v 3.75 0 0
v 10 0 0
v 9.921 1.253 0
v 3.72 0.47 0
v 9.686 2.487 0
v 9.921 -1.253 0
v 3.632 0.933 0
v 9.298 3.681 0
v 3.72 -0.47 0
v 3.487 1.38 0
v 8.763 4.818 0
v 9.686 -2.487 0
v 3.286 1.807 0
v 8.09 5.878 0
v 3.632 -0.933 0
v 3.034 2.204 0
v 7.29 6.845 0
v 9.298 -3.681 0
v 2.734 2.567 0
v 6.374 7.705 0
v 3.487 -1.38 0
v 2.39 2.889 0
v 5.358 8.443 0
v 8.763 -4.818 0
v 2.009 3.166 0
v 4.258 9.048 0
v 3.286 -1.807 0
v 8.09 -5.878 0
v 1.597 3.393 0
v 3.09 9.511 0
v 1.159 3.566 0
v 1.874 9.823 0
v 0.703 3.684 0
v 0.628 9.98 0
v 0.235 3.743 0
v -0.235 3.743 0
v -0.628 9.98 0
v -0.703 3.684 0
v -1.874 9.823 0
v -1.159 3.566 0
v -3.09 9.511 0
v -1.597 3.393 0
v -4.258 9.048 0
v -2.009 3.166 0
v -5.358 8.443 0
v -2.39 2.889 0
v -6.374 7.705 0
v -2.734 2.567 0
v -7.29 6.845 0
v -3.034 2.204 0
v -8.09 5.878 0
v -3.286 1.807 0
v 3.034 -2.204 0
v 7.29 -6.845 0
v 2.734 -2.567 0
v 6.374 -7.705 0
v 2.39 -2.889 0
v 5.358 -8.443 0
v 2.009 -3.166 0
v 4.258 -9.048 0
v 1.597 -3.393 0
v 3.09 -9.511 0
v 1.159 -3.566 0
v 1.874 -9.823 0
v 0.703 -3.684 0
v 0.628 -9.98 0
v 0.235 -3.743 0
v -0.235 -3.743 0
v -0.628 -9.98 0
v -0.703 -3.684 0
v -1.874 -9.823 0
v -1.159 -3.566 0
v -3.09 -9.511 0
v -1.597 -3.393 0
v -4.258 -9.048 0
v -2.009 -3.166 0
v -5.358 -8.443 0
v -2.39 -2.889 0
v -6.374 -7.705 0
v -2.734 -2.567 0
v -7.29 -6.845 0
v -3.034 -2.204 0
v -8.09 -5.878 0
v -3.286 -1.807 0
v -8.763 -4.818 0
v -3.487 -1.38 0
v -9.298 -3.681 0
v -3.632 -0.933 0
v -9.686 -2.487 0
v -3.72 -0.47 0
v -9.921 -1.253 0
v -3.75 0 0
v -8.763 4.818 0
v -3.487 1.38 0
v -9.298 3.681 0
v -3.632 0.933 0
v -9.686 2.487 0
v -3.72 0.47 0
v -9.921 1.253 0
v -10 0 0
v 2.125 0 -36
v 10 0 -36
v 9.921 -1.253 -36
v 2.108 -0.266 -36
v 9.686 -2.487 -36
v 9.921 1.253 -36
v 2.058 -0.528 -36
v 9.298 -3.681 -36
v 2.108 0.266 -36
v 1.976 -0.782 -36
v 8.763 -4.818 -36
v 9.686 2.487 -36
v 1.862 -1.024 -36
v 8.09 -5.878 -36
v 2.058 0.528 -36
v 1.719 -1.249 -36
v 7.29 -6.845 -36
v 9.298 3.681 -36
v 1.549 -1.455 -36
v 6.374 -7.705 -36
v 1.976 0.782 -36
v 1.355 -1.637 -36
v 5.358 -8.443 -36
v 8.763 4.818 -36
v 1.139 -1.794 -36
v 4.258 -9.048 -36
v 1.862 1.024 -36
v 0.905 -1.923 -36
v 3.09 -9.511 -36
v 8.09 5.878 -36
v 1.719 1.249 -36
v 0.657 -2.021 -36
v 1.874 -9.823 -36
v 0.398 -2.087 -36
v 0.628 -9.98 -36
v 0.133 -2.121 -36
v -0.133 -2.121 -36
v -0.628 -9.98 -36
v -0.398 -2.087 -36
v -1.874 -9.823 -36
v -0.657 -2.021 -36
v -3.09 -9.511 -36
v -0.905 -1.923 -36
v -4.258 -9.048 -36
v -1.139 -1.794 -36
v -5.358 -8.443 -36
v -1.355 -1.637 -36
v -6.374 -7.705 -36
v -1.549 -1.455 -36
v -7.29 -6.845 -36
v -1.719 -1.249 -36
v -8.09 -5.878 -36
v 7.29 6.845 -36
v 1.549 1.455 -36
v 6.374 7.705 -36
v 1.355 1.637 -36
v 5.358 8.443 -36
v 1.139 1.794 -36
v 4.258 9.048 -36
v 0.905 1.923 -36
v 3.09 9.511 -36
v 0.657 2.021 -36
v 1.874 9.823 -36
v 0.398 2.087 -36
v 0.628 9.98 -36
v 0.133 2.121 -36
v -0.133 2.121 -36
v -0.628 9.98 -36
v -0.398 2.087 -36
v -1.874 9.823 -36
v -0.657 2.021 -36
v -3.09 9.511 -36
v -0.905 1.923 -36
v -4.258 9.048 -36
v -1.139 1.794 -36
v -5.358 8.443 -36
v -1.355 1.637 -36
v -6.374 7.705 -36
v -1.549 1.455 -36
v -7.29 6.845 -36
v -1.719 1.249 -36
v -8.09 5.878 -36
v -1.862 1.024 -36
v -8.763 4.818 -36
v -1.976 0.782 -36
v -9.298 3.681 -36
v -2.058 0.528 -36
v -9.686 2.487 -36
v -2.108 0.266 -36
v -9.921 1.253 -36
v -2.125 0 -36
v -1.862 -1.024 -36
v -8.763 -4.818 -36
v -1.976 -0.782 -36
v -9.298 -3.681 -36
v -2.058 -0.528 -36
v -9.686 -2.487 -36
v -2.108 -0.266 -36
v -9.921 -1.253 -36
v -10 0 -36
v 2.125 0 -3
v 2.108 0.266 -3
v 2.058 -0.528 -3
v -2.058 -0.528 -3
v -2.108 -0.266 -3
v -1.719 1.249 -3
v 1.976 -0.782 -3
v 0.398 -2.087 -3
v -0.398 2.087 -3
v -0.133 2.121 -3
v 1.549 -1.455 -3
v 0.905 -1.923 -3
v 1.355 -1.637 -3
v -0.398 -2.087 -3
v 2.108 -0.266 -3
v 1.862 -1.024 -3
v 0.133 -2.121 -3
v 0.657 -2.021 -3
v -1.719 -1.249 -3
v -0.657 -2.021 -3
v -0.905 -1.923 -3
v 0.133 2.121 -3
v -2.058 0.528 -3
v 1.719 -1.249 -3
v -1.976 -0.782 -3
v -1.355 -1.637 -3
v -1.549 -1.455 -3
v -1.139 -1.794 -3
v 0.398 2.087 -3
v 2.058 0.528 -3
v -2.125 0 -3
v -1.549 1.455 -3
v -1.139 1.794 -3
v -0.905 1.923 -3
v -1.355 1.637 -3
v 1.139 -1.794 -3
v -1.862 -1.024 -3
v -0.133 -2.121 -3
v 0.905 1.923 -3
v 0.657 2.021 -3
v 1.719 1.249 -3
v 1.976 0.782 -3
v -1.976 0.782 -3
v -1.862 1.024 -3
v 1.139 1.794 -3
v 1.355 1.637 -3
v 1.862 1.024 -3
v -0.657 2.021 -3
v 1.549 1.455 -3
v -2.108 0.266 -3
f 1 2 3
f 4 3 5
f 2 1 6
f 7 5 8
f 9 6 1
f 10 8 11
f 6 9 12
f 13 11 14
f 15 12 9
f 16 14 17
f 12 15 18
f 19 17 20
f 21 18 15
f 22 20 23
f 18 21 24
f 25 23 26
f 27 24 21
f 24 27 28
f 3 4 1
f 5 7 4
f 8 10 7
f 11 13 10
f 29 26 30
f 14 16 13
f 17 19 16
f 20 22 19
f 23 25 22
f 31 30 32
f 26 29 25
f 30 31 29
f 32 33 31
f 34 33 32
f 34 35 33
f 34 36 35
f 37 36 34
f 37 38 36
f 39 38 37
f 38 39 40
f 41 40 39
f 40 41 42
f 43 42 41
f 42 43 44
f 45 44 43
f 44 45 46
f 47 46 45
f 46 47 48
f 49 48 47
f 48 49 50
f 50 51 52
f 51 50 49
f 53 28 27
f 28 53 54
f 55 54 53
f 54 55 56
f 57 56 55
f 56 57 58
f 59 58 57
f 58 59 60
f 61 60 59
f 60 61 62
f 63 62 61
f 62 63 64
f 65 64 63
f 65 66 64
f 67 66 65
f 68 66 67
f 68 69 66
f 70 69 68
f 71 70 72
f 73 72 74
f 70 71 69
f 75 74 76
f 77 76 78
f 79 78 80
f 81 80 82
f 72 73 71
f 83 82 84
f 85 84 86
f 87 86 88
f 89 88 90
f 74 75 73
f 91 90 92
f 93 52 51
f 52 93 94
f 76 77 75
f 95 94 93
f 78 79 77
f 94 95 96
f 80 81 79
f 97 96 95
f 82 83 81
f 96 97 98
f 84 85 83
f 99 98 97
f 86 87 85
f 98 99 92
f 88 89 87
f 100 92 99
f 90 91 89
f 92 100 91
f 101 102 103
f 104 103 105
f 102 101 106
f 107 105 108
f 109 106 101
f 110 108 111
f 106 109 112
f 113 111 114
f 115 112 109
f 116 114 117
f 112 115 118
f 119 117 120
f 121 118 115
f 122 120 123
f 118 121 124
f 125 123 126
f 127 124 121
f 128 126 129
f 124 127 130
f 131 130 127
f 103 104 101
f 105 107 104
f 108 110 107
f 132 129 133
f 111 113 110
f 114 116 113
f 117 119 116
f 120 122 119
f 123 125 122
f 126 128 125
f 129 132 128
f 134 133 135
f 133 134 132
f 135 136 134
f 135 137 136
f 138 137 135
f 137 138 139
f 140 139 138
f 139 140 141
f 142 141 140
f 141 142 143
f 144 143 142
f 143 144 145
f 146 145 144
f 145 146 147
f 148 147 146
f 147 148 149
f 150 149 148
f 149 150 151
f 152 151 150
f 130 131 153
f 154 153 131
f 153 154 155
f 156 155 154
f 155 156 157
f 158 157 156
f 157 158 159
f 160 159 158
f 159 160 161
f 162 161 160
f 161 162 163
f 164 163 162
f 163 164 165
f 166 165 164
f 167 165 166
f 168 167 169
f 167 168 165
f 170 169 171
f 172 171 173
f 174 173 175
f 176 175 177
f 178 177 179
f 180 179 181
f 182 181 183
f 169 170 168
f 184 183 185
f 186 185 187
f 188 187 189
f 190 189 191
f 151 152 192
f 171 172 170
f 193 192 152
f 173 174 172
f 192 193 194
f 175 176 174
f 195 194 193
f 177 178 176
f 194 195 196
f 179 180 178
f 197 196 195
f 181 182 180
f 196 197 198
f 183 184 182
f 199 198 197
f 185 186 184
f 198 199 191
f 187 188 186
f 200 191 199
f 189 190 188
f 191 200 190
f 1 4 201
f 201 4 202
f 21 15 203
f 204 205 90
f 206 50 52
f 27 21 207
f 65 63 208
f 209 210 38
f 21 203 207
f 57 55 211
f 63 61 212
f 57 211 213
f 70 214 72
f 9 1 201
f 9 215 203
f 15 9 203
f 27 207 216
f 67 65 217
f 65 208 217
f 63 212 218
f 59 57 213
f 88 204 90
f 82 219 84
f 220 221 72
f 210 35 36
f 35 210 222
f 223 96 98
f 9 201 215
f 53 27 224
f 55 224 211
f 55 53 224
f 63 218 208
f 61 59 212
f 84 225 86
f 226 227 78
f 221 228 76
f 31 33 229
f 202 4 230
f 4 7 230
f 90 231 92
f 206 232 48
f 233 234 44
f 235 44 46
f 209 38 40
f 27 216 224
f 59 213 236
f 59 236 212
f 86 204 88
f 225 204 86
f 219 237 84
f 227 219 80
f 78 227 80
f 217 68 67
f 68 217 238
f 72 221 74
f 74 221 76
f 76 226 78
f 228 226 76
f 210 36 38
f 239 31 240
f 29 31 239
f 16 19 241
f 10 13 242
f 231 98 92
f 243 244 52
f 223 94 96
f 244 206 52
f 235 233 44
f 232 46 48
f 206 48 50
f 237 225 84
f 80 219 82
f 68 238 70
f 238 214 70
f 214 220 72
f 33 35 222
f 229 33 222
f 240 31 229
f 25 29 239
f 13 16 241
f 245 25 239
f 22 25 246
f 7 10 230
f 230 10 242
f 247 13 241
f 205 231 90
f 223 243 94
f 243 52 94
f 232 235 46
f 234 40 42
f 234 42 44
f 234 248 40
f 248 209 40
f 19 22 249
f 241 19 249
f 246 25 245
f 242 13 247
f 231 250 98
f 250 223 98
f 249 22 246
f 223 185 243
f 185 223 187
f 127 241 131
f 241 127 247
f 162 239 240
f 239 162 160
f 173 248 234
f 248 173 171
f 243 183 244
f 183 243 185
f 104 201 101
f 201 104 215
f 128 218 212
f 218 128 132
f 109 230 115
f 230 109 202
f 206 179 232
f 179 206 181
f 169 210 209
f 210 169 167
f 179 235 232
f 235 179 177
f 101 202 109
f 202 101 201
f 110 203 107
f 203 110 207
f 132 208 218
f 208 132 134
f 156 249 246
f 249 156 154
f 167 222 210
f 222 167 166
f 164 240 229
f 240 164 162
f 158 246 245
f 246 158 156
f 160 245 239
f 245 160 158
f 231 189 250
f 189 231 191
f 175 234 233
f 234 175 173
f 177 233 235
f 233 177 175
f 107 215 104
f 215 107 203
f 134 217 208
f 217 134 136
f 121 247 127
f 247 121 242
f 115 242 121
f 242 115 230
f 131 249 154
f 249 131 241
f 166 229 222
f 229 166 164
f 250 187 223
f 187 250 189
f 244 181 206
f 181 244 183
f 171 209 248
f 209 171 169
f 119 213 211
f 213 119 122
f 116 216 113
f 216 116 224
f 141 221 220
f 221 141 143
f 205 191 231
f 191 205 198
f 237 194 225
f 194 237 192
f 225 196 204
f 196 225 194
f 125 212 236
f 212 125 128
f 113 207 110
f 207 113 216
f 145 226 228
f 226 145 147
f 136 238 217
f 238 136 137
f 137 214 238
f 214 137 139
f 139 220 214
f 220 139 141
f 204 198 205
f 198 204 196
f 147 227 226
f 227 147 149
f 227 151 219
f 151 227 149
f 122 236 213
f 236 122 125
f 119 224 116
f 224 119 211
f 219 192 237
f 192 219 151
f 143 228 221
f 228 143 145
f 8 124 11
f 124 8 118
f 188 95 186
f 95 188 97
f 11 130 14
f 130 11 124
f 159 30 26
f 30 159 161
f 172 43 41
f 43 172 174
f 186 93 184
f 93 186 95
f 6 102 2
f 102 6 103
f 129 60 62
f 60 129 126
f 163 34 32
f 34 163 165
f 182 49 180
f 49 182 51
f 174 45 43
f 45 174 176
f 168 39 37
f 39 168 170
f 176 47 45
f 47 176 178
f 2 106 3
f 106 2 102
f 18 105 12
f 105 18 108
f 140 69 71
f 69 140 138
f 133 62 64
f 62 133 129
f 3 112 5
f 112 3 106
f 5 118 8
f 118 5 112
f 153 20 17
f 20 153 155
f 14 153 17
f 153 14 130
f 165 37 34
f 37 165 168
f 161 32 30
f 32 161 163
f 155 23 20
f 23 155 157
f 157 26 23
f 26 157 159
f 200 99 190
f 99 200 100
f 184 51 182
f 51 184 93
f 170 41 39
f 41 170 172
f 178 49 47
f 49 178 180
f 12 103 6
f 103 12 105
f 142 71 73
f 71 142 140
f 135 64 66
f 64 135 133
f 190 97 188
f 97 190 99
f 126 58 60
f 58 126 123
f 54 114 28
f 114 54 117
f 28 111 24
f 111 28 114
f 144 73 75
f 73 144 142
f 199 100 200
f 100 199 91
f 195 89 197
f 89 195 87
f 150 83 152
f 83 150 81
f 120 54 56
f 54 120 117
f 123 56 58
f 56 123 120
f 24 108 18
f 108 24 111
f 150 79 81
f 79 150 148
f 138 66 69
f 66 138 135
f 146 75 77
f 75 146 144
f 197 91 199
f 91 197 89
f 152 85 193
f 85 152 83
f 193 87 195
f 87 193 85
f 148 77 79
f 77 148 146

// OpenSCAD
$fn = 50;


difference() {
	union() {
		translate(v = [0, 0, -36.0000000000]) {
			cylinder(h = 36, r = 10.0000000000);
		}
		cylinder(h = 0, r = 20.0000000000);
	}
	union() {
		translate(v = [0, 0, 0]) {
			rotate(a = [0, 0, 0]) {
				difference() {
					union() {
						#translate(v = [0, 0, -36.0000000000]) {
							cylinder(h = 36, r = 2.0000000000);
						}
						#translate(v = [0, 0, -3]) {
							cylinder(h = 3, r1 = 2.1250000000, r2 = 3.7500000000);
						}
						#translate(v = [0, 0, -36.0000000000]) {
							cylinder(h = 36, r = 2.1250000000);
						}
						#translate(v = [0, 0, -36.0000000000]) {
							cylinder(h = 36, r = 2.0000000000);
						}
					}
					union();
				}
			}
		}
	}
}
